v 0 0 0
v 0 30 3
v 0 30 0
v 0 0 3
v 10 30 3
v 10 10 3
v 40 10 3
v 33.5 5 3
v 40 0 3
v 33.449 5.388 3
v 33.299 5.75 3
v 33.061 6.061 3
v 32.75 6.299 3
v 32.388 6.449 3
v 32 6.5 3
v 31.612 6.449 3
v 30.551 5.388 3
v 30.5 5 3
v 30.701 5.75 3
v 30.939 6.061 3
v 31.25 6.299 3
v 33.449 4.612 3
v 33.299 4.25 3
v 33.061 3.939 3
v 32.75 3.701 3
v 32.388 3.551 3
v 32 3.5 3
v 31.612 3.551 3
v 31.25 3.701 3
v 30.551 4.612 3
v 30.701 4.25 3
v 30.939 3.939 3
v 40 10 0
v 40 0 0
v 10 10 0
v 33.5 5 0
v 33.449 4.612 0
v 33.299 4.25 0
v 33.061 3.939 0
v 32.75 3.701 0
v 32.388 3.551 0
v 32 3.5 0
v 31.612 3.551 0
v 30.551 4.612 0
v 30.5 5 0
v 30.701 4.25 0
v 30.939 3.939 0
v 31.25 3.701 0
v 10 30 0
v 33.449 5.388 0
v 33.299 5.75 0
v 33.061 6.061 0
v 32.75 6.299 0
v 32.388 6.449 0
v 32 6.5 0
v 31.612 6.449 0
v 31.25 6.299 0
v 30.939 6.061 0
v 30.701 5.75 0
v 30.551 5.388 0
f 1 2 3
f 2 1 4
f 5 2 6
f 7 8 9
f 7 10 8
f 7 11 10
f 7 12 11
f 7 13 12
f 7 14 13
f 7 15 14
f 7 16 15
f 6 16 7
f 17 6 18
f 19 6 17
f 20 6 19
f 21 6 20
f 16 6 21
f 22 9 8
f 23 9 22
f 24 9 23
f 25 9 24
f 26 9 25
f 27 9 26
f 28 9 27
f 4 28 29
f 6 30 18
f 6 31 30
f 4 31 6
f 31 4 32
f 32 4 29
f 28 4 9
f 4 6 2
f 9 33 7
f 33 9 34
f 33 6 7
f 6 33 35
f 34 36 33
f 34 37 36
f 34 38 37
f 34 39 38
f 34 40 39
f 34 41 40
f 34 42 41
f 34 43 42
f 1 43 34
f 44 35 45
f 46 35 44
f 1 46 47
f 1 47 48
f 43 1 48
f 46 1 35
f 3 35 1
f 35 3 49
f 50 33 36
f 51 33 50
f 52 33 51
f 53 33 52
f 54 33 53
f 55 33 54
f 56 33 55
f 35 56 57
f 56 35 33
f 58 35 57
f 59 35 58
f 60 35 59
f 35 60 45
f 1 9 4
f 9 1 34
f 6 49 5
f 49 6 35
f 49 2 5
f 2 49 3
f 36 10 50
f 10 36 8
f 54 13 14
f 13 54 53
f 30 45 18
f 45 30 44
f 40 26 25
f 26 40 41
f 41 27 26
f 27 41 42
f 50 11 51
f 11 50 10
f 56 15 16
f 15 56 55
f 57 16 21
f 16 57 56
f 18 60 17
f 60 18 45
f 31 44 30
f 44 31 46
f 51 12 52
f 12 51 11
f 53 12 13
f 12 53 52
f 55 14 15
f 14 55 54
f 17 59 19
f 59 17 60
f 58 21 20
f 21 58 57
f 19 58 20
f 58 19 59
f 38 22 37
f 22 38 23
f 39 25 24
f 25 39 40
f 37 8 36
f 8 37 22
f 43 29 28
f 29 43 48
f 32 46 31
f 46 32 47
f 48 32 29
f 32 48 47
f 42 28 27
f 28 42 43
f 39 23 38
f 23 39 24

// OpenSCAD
// SPDX-FileCopyrightText: 2026 Alon A. Rabinowitz
// SPDX-License-Identifier: MPL-2.0
// tests/fixtures/ell.scad - an L-shaped plate with a hole near one end, exported by make.sh as the binary STL
// add_brim_ears.py's tests read: convex corners for ears, and an enclosed hole no ear may cover.
difference() {
    union() {
        cube([40, 10, 3]);
        cube([10, 30, 3]);
    }
    translate([32, 5, -1]) cylinder(d = 3, h = 5, $fn = 24);
}
